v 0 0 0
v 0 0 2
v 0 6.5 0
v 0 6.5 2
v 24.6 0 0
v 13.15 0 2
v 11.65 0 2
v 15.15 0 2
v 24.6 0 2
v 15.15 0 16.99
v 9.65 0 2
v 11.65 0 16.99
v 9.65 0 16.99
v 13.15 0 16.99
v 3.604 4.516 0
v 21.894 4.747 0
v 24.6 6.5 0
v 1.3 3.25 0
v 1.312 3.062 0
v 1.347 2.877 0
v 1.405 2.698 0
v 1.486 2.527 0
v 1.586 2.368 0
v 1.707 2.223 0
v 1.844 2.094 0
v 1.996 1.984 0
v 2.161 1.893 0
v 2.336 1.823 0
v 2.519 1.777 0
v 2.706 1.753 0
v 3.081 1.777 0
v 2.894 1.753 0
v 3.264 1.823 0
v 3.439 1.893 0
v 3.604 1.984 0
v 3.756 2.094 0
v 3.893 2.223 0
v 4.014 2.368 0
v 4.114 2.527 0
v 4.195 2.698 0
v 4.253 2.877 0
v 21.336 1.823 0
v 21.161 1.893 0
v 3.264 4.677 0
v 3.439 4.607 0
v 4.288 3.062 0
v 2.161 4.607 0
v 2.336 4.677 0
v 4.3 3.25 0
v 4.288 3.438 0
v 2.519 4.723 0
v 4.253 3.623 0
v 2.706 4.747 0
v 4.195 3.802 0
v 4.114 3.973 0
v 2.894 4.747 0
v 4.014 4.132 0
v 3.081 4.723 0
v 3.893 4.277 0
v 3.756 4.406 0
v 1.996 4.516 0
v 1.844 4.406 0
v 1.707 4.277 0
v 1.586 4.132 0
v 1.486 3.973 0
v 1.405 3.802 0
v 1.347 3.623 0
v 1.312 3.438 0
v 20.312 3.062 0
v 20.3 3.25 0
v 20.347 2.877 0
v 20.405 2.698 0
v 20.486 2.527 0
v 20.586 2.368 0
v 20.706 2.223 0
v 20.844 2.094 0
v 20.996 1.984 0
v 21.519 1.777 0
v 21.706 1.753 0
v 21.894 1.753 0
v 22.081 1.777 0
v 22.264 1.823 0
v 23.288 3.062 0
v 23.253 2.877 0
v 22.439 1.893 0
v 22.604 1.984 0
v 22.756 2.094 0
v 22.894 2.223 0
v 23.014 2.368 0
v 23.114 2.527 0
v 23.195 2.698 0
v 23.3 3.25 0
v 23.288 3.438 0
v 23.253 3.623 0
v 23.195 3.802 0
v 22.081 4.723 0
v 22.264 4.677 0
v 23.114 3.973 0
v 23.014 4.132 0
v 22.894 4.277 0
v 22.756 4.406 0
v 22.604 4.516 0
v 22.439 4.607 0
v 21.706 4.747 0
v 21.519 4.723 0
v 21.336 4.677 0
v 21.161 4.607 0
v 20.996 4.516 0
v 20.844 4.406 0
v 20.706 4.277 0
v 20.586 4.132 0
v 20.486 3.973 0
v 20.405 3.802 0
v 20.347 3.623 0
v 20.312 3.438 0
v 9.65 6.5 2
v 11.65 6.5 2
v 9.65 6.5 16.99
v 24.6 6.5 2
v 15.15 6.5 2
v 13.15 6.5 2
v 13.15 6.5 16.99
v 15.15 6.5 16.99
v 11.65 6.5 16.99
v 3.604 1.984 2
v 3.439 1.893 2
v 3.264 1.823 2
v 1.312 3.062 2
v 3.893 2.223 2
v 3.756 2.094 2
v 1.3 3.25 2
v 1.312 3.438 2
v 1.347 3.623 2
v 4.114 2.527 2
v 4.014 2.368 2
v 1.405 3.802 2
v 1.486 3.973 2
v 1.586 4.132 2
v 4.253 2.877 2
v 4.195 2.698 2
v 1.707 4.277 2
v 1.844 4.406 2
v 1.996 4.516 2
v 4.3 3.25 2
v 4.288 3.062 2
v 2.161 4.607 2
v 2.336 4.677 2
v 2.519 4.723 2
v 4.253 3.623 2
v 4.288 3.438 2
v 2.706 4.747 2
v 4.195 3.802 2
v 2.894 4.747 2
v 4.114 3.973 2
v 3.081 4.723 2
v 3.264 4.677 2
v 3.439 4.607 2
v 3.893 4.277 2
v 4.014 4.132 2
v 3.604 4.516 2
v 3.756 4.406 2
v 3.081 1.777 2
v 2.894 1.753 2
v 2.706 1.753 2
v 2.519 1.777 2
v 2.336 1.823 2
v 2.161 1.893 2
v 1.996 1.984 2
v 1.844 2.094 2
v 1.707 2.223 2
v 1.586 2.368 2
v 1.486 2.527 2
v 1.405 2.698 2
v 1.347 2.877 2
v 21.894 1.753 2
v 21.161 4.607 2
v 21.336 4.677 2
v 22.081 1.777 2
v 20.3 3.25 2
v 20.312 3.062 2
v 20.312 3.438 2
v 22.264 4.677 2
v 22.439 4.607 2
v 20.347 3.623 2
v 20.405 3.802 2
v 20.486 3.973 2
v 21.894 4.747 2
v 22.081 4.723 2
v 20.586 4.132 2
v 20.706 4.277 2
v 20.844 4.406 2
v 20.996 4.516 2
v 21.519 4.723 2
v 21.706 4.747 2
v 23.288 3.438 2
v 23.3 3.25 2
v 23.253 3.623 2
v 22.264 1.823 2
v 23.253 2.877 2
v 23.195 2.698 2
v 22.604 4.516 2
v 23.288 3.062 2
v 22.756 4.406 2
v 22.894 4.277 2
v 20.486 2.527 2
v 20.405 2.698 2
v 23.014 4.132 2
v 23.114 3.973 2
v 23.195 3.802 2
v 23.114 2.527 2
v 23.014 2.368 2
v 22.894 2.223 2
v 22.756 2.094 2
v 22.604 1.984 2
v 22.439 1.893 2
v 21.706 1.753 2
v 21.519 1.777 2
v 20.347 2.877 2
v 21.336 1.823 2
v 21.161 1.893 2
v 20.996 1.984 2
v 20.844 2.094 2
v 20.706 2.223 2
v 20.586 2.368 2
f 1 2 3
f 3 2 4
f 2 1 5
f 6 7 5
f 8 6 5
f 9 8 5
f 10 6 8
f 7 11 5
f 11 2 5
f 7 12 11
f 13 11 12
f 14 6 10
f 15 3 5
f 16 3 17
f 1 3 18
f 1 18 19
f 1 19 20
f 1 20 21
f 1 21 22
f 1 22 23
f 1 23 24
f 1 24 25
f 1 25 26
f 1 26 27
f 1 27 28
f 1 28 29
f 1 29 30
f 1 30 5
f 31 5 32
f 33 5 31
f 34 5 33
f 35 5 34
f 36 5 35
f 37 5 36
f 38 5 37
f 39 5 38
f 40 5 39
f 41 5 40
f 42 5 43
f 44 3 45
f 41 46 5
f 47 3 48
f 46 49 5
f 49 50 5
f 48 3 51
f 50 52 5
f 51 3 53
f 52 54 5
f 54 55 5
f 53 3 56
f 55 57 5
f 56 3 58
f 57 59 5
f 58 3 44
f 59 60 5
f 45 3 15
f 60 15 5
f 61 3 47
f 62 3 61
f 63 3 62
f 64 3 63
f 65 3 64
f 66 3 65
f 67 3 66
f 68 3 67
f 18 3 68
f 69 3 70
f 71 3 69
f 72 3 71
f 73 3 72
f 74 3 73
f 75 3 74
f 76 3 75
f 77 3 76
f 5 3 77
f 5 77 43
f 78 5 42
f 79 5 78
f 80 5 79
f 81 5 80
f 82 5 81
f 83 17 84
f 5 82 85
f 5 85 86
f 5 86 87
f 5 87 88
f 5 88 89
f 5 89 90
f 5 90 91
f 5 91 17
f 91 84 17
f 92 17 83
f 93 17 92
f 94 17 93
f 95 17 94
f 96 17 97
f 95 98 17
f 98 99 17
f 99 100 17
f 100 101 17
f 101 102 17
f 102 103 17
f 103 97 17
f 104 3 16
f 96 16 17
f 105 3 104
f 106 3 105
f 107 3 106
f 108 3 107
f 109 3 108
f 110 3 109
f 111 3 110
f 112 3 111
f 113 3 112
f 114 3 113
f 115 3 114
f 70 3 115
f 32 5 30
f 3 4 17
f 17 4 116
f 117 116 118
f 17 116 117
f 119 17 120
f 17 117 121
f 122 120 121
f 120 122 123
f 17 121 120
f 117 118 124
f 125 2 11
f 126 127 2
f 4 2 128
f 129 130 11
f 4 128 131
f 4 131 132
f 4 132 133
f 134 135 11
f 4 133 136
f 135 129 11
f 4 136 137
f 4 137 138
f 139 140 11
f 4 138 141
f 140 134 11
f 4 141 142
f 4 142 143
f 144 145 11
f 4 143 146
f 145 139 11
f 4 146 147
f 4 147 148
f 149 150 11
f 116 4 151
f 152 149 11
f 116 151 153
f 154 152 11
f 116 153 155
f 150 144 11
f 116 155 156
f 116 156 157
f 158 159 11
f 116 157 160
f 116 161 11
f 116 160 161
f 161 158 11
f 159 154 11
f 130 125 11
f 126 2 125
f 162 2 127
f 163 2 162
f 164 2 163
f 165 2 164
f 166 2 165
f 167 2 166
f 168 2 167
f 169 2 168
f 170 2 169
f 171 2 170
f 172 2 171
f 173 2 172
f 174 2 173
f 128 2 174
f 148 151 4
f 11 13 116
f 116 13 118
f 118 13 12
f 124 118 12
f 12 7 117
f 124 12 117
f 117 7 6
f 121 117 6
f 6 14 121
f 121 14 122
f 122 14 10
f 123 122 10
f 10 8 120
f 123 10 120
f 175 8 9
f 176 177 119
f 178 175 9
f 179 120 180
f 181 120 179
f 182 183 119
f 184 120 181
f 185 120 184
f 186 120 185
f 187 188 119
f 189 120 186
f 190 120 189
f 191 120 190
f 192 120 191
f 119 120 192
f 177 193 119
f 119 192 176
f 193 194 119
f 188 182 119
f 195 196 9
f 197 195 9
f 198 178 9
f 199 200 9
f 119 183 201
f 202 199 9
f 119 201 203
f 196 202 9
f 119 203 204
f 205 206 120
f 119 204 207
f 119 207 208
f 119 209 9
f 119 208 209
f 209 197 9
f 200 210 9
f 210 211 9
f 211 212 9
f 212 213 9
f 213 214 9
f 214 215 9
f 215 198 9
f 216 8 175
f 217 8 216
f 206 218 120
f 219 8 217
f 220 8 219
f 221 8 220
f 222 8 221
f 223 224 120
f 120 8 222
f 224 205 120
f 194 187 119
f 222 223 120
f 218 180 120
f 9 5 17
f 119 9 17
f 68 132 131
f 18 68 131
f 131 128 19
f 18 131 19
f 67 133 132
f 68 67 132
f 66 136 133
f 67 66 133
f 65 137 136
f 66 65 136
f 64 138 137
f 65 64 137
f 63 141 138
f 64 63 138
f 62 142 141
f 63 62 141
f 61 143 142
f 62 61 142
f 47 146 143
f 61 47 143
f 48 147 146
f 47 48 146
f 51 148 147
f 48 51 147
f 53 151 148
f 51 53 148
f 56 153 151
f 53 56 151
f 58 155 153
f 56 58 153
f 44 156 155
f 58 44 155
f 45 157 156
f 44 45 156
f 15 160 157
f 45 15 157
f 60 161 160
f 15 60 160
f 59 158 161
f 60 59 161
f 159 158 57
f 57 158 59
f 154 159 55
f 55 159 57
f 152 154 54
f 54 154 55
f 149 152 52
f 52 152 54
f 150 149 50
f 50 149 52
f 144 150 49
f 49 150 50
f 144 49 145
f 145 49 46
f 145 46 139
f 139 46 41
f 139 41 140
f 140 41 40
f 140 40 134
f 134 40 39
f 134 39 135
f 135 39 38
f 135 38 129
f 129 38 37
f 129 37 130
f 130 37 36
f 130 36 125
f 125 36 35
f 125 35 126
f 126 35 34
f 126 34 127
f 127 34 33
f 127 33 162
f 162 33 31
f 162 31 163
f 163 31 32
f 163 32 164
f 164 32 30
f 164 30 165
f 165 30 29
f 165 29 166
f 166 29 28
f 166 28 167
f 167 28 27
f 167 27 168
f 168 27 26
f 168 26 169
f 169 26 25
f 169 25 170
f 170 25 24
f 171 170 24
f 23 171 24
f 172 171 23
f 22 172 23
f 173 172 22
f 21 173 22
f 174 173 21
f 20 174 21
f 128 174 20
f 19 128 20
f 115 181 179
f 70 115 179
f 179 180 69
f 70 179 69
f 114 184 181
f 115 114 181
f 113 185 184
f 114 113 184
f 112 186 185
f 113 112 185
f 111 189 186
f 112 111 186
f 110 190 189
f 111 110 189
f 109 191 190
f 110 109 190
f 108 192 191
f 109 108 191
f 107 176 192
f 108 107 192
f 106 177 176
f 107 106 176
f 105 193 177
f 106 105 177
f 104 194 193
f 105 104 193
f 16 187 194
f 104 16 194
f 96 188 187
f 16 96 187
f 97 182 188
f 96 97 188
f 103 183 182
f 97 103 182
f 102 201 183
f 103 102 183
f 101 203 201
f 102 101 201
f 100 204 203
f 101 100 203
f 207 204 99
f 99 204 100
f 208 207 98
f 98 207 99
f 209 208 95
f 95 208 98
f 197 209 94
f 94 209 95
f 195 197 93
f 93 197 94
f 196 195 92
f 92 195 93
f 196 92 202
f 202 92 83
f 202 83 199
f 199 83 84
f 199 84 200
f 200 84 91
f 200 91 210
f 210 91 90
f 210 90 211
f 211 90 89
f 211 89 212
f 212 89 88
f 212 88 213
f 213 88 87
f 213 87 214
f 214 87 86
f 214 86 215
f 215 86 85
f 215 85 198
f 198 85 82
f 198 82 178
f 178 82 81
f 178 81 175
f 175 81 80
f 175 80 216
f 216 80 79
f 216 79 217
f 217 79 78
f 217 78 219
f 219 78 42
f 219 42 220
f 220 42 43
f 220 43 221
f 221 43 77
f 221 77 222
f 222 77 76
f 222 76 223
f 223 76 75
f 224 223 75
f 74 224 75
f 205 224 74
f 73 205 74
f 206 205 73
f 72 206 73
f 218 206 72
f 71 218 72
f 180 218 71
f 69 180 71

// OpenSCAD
/*
Projet ReprapJeanne
Fixation des endstop optiques sur l'axe profil T
github: https://github.com/gnieark/reprapJeanne
wiki https://mail.jeannedhack.org/wicked/display.php?page=reprap_geante
By Gnieark https://blog-du-grouik.tinad.fr
& TranKILLoman   
License GNU-GPL V3
*/


difference(){
	cube([24.6,6.5,2]);
	union(){
		translate([2.8,3.25,-0.1]) cylinder(r=1.5,h=3,$fn=50);
		translate([2.8+19,3.25,-0.1]) cylinder(r=1.5,h=3,$fn=50);
	}
}
translate([9.65,0,1.99]) cube([2,6.5,15]);
translate([13.15,0,1.99]) cube([2,6.5,15]);
